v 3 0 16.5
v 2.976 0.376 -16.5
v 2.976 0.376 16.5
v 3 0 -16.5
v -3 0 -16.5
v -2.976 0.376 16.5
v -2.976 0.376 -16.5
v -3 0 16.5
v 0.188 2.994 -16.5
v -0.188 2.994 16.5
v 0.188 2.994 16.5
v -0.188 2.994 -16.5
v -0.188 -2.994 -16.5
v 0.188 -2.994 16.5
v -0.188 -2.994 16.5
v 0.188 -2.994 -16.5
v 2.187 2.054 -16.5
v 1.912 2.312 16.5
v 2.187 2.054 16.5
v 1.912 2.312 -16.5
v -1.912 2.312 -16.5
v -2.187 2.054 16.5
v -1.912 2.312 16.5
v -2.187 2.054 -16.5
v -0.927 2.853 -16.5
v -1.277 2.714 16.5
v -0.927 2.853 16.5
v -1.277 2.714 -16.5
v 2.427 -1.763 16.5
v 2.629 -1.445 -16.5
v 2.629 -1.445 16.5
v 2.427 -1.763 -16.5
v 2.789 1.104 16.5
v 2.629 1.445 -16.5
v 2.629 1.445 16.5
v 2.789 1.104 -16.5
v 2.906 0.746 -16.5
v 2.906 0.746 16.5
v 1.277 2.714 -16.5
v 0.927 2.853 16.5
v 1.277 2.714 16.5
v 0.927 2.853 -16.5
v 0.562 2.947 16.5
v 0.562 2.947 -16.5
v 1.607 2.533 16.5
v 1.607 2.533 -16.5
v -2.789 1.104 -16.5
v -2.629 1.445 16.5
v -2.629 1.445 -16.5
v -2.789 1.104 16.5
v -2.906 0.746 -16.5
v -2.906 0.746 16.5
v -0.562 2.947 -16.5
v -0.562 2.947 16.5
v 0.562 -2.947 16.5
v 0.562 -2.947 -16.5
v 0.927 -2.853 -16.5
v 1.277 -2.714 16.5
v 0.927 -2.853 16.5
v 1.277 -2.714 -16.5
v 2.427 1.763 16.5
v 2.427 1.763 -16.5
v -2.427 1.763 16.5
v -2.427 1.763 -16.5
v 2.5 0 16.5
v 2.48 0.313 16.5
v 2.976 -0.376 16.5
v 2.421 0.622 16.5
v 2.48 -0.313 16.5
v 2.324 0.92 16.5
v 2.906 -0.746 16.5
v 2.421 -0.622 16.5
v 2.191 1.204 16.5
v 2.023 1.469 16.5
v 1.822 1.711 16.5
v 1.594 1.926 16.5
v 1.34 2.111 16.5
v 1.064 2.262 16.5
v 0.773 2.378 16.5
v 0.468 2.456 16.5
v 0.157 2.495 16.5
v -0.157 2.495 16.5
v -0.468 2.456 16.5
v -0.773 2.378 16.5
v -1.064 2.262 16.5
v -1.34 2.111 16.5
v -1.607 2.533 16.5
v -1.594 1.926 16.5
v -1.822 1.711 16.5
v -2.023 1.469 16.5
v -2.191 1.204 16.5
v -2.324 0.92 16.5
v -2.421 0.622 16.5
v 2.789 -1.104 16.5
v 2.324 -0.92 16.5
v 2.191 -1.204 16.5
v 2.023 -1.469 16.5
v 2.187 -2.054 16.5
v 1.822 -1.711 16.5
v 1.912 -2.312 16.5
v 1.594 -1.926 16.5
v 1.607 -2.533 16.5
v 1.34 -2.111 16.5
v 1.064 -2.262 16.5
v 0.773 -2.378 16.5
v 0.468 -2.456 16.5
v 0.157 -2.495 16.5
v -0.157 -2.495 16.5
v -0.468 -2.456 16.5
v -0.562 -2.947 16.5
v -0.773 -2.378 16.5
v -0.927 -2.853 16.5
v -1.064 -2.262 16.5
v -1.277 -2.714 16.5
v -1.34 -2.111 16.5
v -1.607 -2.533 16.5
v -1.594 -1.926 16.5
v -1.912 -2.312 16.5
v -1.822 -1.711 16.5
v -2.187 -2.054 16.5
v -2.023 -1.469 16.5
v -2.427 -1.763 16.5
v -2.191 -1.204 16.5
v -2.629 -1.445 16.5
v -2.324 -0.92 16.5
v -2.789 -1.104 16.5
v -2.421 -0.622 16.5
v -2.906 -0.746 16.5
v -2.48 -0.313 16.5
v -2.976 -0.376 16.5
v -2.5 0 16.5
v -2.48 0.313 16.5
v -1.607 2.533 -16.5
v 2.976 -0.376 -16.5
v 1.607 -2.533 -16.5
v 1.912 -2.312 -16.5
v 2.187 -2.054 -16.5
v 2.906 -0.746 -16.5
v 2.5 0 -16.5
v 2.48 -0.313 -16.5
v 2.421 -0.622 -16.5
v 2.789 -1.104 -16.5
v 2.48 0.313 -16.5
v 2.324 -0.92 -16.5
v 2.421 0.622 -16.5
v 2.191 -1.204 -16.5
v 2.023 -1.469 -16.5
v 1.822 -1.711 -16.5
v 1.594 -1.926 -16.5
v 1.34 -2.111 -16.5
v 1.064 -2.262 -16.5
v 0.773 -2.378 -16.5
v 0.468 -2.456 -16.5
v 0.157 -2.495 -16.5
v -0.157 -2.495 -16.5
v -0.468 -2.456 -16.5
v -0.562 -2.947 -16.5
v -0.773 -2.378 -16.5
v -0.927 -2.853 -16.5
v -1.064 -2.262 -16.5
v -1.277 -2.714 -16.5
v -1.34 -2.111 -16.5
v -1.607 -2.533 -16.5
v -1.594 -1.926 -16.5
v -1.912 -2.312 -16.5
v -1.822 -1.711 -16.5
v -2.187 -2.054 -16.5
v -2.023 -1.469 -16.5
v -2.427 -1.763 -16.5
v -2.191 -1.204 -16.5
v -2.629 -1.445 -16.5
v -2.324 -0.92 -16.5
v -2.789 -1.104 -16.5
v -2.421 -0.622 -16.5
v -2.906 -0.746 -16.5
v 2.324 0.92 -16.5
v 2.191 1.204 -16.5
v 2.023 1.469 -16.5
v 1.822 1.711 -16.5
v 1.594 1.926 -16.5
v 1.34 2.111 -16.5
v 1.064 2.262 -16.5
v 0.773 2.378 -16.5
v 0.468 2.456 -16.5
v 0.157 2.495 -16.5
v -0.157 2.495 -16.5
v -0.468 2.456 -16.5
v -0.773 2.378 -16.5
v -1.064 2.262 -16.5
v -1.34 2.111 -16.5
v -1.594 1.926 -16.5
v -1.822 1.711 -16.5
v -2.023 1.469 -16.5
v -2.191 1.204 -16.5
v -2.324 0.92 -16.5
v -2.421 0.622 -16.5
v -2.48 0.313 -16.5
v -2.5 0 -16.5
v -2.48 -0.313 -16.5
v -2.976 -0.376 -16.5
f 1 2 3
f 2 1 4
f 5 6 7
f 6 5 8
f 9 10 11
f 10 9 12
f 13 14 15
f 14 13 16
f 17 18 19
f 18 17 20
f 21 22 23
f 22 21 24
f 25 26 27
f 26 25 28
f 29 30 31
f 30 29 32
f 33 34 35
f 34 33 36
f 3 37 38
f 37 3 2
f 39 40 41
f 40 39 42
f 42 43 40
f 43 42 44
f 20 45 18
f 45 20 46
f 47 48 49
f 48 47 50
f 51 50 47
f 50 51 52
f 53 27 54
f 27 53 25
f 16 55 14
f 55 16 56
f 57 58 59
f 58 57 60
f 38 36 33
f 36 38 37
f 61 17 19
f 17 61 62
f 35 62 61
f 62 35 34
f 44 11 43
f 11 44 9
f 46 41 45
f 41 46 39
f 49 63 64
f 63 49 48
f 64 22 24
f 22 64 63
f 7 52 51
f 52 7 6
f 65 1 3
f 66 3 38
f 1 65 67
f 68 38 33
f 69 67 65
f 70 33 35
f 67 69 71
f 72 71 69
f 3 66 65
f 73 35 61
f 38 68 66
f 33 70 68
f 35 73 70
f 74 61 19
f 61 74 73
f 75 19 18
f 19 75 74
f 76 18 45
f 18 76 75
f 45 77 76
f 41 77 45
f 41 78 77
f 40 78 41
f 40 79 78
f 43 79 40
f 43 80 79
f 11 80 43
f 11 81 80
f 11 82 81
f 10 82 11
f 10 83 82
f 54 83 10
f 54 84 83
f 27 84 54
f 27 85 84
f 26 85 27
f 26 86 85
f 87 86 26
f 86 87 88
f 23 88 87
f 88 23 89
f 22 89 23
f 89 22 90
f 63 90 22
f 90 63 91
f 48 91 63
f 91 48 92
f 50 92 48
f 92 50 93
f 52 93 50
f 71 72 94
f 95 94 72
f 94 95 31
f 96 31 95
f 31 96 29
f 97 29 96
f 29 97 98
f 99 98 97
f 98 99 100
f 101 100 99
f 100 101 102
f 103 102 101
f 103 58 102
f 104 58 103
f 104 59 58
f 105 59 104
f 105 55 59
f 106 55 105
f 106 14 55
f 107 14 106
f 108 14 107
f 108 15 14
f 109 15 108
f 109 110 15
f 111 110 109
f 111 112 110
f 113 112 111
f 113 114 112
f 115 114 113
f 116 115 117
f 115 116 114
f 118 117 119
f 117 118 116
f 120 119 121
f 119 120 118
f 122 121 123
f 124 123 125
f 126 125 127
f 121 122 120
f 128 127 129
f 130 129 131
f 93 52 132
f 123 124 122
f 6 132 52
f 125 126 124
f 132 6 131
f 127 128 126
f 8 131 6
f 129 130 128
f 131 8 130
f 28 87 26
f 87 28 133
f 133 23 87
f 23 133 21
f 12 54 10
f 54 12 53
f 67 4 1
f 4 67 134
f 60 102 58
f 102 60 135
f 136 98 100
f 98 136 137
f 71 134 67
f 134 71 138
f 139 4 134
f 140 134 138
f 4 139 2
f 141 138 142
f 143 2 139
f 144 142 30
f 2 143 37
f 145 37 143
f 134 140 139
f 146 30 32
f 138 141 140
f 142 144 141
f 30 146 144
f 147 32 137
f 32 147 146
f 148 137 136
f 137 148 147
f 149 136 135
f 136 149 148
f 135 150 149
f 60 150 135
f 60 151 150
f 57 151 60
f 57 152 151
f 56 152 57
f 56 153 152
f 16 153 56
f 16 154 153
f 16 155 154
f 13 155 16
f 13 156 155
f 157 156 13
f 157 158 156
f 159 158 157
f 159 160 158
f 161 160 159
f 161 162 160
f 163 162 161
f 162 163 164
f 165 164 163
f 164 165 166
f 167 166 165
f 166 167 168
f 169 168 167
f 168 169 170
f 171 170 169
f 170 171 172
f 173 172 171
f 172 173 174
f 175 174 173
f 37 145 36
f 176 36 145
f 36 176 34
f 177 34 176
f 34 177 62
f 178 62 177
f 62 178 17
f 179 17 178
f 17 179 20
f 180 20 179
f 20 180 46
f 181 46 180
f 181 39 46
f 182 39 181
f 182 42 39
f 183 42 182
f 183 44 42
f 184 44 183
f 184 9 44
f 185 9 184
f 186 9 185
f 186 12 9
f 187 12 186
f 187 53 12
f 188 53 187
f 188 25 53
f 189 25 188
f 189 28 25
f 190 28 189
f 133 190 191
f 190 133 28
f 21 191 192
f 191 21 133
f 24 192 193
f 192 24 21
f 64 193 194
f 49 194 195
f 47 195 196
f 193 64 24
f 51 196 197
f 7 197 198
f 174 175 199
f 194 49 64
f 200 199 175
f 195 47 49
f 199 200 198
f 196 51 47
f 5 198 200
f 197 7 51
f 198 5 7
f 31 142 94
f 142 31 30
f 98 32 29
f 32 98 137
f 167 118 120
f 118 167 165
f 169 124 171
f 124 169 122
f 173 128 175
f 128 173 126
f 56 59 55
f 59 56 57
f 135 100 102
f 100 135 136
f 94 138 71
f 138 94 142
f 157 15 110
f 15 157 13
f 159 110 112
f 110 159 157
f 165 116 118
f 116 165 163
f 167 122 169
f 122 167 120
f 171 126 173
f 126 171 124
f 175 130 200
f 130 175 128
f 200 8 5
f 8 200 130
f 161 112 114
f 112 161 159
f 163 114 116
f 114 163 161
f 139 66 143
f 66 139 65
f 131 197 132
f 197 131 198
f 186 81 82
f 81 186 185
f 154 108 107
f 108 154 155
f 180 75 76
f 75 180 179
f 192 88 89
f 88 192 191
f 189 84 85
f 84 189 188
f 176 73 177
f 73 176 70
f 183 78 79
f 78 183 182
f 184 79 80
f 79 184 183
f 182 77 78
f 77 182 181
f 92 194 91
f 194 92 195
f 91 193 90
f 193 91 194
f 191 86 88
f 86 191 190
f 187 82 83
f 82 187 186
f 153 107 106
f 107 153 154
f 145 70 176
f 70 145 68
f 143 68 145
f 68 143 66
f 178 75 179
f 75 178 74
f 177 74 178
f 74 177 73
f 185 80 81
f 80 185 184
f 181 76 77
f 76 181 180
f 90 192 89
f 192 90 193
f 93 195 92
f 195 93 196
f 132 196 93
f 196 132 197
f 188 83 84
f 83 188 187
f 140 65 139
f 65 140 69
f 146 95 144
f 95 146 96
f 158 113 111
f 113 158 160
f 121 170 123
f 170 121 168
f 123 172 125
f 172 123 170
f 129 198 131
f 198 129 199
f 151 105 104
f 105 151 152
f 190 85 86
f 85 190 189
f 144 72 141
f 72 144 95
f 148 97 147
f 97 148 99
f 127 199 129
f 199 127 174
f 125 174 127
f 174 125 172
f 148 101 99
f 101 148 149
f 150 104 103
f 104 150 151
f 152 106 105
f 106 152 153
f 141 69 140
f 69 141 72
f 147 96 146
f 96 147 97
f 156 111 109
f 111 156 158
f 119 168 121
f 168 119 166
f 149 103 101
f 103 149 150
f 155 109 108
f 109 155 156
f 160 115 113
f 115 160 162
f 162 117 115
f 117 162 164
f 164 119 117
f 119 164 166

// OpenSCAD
$fn = 50;


difference() {
	union() {
		translate(v = [0, 0, -16.5000000000]) {
			cylinder(h = 33, r = 3.0000000000);
		}
	}
	union() {
		translate(v = [0, 0, -100.0000000000]) {
			cylinder(h = 200, r = 2.5000000000);
		}
	}
}
